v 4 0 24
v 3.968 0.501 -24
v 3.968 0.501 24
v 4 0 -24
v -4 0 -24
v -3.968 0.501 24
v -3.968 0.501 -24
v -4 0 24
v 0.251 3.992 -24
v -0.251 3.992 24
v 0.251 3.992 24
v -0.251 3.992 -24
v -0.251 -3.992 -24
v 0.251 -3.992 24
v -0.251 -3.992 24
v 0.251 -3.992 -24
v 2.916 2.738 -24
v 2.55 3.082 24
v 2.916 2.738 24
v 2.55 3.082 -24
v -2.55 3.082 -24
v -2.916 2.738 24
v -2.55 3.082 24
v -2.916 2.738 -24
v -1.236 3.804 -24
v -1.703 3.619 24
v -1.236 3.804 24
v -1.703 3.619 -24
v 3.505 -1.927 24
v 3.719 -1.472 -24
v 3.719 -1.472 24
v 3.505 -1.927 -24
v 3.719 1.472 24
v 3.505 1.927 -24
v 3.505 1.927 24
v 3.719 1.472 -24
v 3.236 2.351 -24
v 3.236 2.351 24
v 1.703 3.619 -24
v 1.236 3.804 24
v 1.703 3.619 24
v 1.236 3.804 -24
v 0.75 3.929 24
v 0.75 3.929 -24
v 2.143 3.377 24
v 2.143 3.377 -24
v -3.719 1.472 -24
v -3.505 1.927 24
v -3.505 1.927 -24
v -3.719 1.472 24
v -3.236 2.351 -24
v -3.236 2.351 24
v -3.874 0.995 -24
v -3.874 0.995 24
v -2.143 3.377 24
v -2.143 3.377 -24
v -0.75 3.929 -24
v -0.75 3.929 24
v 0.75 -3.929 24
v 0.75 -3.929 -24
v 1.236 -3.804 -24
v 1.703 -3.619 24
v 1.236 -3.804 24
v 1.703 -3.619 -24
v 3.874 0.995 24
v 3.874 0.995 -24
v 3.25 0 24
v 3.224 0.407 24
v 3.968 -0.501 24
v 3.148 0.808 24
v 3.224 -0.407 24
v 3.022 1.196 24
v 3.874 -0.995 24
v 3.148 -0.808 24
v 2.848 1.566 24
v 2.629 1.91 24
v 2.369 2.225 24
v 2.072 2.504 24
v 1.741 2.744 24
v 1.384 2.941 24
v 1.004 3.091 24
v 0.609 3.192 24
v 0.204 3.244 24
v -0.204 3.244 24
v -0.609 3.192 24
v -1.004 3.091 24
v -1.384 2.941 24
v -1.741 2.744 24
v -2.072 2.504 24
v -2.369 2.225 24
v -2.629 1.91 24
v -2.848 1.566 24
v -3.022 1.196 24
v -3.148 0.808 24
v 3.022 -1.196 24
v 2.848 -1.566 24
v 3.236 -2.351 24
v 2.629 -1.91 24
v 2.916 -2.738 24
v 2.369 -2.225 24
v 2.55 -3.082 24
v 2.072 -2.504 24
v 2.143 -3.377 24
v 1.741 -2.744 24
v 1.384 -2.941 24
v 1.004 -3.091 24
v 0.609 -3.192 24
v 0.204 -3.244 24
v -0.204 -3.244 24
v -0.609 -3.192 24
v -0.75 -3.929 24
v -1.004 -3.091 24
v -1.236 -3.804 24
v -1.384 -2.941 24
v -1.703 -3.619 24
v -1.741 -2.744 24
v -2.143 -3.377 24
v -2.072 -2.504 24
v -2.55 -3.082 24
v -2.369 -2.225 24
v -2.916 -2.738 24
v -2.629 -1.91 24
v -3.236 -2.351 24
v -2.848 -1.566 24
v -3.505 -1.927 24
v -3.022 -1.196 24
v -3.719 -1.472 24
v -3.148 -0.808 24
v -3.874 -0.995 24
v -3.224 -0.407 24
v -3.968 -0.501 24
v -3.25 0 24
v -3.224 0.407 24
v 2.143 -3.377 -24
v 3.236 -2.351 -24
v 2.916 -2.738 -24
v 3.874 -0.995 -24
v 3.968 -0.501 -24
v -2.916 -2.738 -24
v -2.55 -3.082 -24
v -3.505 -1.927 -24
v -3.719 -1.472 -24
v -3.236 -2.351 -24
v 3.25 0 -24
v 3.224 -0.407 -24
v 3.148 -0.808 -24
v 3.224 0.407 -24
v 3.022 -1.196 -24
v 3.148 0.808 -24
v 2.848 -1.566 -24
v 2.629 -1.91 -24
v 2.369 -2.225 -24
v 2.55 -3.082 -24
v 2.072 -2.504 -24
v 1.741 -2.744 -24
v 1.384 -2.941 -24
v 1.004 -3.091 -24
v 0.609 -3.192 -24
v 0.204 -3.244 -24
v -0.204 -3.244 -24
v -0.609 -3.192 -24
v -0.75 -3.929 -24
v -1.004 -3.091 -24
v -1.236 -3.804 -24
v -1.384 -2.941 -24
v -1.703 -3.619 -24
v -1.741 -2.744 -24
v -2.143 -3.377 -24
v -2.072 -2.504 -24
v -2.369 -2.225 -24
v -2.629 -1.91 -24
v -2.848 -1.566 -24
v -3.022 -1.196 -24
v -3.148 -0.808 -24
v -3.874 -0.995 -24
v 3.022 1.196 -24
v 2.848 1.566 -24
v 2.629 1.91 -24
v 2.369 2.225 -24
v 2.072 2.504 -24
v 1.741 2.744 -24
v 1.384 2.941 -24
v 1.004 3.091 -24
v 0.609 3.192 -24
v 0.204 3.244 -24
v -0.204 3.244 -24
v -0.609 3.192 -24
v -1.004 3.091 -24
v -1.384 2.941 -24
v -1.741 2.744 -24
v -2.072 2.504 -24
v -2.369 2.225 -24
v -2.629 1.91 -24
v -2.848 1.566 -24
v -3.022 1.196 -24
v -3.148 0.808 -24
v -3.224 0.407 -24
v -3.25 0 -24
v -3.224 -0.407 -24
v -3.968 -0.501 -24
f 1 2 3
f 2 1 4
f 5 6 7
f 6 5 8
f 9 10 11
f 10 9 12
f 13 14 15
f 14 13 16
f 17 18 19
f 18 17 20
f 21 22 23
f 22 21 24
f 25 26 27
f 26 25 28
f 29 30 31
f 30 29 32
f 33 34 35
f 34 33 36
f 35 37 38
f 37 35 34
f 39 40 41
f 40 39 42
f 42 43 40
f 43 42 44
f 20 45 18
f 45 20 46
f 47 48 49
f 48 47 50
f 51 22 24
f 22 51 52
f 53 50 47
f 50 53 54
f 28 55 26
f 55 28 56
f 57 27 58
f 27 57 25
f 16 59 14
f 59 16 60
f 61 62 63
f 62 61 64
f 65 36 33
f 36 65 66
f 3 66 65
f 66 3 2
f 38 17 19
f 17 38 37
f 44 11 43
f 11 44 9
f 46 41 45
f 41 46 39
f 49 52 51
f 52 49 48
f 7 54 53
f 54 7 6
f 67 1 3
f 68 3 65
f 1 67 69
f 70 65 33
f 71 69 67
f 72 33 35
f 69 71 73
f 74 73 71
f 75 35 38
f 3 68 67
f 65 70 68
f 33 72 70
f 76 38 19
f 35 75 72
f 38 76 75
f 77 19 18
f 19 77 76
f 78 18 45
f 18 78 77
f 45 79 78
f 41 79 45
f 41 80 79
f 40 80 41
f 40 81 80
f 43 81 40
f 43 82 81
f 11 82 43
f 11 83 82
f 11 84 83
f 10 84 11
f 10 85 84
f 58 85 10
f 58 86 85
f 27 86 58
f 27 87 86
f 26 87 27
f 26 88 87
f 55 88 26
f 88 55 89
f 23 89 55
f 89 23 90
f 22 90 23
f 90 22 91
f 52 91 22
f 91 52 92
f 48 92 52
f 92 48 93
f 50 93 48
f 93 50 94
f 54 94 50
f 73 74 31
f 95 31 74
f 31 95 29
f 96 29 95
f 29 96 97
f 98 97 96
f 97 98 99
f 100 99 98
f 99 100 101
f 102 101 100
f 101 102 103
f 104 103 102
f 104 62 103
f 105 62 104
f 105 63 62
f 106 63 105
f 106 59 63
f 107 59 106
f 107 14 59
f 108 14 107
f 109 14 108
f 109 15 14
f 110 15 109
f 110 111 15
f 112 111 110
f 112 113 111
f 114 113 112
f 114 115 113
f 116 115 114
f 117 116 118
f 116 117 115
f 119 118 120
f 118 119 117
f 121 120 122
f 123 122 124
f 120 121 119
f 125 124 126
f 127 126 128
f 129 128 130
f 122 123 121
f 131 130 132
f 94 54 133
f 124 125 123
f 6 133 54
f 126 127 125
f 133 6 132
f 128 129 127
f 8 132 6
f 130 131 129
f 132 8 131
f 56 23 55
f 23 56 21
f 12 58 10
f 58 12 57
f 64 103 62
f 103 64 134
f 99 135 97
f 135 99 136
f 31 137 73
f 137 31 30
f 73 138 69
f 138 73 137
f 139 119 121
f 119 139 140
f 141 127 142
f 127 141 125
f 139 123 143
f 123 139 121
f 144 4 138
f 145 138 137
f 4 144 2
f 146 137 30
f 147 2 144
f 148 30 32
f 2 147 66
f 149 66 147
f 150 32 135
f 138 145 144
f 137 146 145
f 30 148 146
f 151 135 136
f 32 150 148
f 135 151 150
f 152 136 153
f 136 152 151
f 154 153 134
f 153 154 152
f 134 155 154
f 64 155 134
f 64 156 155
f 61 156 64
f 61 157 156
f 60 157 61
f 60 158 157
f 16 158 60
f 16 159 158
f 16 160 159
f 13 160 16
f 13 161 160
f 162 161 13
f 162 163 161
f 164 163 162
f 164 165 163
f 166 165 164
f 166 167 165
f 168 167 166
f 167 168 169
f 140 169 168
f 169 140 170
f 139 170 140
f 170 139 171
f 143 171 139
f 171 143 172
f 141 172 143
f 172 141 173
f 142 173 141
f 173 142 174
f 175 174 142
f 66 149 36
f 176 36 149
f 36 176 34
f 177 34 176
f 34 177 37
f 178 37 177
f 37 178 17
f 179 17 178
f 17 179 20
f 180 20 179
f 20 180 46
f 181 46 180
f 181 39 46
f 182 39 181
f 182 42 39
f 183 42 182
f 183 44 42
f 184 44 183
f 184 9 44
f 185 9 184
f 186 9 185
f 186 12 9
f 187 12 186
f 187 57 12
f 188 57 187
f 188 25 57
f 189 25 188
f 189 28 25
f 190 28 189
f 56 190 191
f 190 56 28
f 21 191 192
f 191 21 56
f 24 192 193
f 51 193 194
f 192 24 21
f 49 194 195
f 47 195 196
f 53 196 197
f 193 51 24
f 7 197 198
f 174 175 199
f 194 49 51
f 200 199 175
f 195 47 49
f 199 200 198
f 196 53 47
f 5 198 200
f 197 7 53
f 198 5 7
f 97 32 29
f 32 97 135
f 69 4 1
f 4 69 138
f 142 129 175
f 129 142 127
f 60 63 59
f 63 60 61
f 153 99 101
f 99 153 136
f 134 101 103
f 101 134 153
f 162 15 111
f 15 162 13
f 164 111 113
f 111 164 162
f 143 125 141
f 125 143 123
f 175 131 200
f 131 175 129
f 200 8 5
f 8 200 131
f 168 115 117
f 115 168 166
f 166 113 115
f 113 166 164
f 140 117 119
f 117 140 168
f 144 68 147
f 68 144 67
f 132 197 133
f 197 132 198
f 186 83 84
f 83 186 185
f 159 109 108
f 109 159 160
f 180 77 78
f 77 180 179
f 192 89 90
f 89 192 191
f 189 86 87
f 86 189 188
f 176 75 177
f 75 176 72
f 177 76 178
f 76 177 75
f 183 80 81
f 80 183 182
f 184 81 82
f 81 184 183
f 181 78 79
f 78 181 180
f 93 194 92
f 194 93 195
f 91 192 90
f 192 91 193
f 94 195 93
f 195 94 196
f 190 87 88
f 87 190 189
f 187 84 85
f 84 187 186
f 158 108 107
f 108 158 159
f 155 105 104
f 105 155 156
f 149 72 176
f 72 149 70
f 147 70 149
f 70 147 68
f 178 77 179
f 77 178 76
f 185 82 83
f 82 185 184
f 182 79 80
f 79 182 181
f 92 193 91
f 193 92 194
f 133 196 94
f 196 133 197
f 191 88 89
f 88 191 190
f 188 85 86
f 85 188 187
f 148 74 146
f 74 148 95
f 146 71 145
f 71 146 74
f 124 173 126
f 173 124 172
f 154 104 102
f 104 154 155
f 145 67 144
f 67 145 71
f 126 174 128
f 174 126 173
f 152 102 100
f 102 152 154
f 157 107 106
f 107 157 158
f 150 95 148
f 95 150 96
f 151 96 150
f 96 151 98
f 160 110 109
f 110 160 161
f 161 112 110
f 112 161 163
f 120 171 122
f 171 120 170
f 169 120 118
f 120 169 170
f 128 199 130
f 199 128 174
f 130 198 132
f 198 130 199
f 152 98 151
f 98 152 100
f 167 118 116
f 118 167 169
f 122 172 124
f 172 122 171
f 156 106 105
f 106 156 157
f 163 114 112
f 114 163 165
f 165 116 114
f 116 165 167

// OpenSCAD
$fn = 50;


difference() {
	union() {
		translate(v = [0, 0, -24.0000000000]) {
			cylinder(h = 48, r = 4.0000000000);
		}
	}
	union() {
		translate(v = [0, 0, -100.0000000000]) {
			cylinder(h = 200, r = 3.2500000000);
		}
	}
}
